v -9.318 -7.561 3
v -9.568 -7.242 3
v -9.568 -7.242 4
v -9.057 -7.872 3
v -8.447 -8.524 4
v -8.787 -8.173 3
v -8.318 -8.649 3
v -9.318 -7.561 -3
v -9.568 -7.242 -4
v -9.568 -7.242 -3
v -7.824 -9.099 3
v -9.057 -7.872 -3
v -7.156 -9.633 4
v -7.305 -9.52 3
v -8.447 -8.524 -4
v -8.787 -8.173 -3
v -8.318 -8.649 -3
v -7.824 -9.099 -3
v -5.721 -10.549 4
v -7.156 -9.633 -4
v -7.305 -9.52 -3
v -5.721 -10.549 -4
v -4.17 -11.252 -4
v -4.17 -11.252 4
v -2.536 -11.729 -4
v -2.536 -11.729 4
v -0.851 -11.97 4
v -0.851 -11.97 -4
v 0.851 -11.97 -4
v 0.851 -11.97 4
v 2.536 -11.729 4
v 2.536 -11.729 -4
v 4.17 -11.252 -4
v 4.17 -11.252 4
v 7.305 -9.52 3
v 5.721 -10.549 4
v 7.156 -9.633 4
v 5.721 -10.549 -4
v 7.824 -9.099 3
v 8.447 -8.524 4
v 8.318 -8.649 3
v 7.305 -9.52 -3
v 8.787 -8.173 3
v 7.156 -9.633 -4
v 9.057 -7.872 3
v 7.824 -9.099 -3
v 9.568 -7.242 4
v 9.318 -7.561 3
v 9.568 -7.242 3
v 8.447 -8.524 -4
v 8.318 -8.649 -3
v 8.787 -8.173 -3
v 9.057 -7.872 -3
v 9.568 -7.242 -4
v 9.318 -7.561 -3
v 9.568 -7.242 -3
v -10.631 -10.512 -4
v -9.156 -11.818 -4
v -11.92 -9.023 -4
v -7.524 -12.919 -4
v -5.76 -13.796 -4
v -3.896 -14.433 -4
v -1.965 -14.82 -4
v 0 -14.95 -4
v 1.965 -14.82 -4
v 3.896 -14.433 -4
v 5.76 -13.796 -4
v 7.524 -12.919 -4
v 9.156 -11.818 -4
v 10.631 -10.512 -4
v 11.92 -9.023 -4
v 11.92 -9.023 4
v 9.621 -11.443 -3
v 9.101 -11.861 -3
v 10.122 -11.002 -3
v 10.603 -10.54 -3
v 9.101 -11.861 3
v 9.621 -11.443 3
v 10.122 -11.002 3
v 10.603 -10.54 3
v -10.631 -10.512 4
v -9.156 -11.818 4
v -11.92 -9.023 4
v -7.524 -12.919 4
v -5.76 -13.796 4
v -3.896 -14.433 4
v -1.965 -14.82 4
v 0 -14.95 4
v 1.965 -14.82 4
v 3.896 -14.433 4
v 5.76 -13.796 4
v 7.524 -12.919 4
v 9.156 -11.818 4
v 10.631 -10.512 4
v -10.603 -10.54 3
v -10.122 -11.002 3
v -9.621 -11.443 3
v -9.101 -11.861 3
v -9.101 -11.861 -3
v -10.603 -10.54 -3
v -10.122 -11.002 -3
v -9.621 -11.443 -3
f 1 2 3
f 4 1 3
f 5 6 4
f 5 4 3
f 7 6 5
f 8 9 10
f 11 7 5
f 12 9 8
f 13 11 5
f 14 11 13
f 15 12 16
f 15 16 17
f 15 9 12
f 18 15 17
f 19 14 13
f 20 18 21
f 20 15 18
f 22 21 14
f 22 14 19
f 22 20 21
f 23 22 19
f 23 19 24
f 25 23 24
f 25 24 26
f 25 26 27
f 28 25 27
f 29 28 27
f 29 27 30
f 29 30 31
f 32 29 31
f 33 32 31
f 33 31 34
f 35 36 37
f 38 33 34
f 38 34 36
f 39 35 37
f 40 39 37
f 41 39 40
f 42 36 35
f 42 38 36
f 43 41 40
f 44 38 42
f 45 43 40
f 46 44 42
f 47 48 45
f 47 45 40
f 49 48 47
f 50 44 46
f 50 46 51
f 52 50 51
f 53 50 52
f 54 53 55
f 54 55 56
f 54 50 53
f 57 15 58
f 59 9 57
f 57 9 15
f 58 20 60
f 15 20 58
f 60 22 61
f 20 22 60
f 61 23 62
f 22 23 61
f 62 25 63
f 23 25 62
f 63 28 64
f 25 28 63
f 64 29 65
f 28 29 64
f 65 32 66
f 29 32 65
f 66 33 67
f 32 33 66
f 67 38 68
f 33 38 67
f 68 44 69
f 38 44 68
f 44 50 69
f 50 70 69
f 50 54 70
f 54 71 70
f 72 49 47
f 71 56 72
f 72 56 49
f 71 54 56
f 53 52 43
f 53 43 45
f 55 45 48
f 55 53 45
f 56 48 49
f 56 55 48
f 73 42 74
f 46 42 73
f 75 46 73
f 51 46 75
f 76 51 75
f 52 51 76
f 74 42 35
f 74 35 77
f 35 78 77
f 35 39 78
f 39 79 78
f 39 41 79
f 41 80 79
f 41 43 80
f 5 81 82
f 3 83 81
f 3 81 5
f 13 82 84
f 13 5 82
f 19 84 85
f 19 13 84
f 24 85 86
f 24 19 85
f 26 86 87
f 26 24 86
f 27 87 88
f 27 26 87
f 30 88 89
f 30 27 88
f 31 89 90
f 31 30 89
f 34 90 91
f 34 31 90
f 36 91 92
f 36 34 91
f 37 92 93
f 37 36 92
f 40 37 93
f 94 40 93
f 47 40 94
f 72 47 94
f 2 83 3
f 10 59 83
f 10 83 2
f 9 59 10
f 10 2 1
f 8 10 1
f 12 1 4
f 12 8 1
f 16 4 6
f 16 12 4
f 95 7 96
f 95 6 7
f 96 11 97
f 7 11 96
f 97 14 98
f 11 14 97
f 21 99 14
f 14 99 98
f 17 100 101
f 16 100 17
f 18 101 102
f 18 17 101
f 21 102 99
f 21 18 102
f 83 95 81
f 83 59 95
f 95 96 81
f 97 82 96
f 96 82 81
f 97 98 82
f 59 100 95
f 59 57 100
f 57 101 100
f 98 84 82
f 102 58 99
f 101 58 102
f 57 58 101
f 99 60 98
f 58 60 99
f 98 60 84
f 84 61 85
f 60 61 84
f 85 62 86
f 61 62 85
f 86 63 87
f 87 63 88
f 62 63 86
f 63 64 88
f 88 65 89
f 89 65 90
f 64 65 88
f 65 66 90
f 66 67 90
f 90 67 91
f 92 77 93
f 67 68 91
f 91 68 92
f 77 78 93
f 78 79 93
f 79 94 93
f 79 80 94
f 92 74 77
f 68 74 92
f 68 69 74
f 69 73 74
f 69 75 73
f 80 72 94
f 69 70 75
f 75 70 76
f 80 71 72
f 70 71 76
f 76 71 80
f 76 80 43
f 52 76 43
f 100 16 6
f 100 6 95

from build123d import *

# Parameters (mm, degrees)
PAD001_DEPTH = 3
SKETCH004_R  = 10.5
POCKET_DEPTH = 5
PAD_DEPTH    = 4


with BuildPart() as body001:
    # Sketch001 → Pad001 (new body, symmetric)
    with BuildSketch(Plane.XY):
        with BuildLine():
            ThreePointArc((8.786596, -8.172865), (11.974307, -0.784838), (9.778199, 6.956064))
            Line((11.923388, 9.101253), (9.778199, 6.956064))
            Line((10.606602, 10.606602), (11.923388, 9.101253))
            Line((8.485281, 8.485281), (10.606602, 10.606602))
            ThreePointArc((8.485281, 8.485281), (0, 12), (-8.485281, 8.485281))
            Line((-8.485281, 8.485281), (-10.606602, 10.606602))
            Line((-10.606602, 10.606602), (-11.923388, 9.101253))
            Line((-11.923388, 9.101253), (-9.778199, 6.956064))
            ThreePointArc((-9.778199, 6.956064), (-11.974307, -0.784838), (-8.786596, -8.172865))
            Line((-8.786596, -8.172865), (-10.63343, -10.579705))
            Line((-10.63343, -10.579705), (-9.131421, -11.9003))
            Line((0, 0), (-9.131421, -11.9003))
            Line((0, 0), (9.131421, -11.9003))
            Line((9.131421, -11.9003), (10.63343, -10.579705))
            Line((10.63343, -10.579705), (8.786596, -8.172865))
        make_face()
    extrude(amount=PAD001_DEPTH, both=True)

    # Sketch004 → Pocket (cut)
    with BuildSketch(Plane.XY.offset(2.5)):
        Circle(SKETCH004_R)
    extrude(amount=-POCKET_DEPTH, mode=Mode.SUBTRACT)


with BuildPart() as body:
    # Sketch → Pad (new body, symmetric)
    with BuildSketch(Plane.XY):
        with BuildLine():
            ThreePointArc((-9.567984, -7.242492), (0, -12), (9.567984, -7.242492))
            Line((11.920113, -9.022938), (9.567984, -7.242492))
            ThreePointArc((-11.920113, -9.022938), (0, -14.95), (11.920113, -9.022938))
            Line((-11.920113, -9.022938), (-9.567984, -7.242492))
        make_face()
    extrude(amount=PAD_DEPTH, both=True)

    # Boolean: cut Body001
    add(body001.part, mode=Mode.SUBTRACT)


solid = body.part
